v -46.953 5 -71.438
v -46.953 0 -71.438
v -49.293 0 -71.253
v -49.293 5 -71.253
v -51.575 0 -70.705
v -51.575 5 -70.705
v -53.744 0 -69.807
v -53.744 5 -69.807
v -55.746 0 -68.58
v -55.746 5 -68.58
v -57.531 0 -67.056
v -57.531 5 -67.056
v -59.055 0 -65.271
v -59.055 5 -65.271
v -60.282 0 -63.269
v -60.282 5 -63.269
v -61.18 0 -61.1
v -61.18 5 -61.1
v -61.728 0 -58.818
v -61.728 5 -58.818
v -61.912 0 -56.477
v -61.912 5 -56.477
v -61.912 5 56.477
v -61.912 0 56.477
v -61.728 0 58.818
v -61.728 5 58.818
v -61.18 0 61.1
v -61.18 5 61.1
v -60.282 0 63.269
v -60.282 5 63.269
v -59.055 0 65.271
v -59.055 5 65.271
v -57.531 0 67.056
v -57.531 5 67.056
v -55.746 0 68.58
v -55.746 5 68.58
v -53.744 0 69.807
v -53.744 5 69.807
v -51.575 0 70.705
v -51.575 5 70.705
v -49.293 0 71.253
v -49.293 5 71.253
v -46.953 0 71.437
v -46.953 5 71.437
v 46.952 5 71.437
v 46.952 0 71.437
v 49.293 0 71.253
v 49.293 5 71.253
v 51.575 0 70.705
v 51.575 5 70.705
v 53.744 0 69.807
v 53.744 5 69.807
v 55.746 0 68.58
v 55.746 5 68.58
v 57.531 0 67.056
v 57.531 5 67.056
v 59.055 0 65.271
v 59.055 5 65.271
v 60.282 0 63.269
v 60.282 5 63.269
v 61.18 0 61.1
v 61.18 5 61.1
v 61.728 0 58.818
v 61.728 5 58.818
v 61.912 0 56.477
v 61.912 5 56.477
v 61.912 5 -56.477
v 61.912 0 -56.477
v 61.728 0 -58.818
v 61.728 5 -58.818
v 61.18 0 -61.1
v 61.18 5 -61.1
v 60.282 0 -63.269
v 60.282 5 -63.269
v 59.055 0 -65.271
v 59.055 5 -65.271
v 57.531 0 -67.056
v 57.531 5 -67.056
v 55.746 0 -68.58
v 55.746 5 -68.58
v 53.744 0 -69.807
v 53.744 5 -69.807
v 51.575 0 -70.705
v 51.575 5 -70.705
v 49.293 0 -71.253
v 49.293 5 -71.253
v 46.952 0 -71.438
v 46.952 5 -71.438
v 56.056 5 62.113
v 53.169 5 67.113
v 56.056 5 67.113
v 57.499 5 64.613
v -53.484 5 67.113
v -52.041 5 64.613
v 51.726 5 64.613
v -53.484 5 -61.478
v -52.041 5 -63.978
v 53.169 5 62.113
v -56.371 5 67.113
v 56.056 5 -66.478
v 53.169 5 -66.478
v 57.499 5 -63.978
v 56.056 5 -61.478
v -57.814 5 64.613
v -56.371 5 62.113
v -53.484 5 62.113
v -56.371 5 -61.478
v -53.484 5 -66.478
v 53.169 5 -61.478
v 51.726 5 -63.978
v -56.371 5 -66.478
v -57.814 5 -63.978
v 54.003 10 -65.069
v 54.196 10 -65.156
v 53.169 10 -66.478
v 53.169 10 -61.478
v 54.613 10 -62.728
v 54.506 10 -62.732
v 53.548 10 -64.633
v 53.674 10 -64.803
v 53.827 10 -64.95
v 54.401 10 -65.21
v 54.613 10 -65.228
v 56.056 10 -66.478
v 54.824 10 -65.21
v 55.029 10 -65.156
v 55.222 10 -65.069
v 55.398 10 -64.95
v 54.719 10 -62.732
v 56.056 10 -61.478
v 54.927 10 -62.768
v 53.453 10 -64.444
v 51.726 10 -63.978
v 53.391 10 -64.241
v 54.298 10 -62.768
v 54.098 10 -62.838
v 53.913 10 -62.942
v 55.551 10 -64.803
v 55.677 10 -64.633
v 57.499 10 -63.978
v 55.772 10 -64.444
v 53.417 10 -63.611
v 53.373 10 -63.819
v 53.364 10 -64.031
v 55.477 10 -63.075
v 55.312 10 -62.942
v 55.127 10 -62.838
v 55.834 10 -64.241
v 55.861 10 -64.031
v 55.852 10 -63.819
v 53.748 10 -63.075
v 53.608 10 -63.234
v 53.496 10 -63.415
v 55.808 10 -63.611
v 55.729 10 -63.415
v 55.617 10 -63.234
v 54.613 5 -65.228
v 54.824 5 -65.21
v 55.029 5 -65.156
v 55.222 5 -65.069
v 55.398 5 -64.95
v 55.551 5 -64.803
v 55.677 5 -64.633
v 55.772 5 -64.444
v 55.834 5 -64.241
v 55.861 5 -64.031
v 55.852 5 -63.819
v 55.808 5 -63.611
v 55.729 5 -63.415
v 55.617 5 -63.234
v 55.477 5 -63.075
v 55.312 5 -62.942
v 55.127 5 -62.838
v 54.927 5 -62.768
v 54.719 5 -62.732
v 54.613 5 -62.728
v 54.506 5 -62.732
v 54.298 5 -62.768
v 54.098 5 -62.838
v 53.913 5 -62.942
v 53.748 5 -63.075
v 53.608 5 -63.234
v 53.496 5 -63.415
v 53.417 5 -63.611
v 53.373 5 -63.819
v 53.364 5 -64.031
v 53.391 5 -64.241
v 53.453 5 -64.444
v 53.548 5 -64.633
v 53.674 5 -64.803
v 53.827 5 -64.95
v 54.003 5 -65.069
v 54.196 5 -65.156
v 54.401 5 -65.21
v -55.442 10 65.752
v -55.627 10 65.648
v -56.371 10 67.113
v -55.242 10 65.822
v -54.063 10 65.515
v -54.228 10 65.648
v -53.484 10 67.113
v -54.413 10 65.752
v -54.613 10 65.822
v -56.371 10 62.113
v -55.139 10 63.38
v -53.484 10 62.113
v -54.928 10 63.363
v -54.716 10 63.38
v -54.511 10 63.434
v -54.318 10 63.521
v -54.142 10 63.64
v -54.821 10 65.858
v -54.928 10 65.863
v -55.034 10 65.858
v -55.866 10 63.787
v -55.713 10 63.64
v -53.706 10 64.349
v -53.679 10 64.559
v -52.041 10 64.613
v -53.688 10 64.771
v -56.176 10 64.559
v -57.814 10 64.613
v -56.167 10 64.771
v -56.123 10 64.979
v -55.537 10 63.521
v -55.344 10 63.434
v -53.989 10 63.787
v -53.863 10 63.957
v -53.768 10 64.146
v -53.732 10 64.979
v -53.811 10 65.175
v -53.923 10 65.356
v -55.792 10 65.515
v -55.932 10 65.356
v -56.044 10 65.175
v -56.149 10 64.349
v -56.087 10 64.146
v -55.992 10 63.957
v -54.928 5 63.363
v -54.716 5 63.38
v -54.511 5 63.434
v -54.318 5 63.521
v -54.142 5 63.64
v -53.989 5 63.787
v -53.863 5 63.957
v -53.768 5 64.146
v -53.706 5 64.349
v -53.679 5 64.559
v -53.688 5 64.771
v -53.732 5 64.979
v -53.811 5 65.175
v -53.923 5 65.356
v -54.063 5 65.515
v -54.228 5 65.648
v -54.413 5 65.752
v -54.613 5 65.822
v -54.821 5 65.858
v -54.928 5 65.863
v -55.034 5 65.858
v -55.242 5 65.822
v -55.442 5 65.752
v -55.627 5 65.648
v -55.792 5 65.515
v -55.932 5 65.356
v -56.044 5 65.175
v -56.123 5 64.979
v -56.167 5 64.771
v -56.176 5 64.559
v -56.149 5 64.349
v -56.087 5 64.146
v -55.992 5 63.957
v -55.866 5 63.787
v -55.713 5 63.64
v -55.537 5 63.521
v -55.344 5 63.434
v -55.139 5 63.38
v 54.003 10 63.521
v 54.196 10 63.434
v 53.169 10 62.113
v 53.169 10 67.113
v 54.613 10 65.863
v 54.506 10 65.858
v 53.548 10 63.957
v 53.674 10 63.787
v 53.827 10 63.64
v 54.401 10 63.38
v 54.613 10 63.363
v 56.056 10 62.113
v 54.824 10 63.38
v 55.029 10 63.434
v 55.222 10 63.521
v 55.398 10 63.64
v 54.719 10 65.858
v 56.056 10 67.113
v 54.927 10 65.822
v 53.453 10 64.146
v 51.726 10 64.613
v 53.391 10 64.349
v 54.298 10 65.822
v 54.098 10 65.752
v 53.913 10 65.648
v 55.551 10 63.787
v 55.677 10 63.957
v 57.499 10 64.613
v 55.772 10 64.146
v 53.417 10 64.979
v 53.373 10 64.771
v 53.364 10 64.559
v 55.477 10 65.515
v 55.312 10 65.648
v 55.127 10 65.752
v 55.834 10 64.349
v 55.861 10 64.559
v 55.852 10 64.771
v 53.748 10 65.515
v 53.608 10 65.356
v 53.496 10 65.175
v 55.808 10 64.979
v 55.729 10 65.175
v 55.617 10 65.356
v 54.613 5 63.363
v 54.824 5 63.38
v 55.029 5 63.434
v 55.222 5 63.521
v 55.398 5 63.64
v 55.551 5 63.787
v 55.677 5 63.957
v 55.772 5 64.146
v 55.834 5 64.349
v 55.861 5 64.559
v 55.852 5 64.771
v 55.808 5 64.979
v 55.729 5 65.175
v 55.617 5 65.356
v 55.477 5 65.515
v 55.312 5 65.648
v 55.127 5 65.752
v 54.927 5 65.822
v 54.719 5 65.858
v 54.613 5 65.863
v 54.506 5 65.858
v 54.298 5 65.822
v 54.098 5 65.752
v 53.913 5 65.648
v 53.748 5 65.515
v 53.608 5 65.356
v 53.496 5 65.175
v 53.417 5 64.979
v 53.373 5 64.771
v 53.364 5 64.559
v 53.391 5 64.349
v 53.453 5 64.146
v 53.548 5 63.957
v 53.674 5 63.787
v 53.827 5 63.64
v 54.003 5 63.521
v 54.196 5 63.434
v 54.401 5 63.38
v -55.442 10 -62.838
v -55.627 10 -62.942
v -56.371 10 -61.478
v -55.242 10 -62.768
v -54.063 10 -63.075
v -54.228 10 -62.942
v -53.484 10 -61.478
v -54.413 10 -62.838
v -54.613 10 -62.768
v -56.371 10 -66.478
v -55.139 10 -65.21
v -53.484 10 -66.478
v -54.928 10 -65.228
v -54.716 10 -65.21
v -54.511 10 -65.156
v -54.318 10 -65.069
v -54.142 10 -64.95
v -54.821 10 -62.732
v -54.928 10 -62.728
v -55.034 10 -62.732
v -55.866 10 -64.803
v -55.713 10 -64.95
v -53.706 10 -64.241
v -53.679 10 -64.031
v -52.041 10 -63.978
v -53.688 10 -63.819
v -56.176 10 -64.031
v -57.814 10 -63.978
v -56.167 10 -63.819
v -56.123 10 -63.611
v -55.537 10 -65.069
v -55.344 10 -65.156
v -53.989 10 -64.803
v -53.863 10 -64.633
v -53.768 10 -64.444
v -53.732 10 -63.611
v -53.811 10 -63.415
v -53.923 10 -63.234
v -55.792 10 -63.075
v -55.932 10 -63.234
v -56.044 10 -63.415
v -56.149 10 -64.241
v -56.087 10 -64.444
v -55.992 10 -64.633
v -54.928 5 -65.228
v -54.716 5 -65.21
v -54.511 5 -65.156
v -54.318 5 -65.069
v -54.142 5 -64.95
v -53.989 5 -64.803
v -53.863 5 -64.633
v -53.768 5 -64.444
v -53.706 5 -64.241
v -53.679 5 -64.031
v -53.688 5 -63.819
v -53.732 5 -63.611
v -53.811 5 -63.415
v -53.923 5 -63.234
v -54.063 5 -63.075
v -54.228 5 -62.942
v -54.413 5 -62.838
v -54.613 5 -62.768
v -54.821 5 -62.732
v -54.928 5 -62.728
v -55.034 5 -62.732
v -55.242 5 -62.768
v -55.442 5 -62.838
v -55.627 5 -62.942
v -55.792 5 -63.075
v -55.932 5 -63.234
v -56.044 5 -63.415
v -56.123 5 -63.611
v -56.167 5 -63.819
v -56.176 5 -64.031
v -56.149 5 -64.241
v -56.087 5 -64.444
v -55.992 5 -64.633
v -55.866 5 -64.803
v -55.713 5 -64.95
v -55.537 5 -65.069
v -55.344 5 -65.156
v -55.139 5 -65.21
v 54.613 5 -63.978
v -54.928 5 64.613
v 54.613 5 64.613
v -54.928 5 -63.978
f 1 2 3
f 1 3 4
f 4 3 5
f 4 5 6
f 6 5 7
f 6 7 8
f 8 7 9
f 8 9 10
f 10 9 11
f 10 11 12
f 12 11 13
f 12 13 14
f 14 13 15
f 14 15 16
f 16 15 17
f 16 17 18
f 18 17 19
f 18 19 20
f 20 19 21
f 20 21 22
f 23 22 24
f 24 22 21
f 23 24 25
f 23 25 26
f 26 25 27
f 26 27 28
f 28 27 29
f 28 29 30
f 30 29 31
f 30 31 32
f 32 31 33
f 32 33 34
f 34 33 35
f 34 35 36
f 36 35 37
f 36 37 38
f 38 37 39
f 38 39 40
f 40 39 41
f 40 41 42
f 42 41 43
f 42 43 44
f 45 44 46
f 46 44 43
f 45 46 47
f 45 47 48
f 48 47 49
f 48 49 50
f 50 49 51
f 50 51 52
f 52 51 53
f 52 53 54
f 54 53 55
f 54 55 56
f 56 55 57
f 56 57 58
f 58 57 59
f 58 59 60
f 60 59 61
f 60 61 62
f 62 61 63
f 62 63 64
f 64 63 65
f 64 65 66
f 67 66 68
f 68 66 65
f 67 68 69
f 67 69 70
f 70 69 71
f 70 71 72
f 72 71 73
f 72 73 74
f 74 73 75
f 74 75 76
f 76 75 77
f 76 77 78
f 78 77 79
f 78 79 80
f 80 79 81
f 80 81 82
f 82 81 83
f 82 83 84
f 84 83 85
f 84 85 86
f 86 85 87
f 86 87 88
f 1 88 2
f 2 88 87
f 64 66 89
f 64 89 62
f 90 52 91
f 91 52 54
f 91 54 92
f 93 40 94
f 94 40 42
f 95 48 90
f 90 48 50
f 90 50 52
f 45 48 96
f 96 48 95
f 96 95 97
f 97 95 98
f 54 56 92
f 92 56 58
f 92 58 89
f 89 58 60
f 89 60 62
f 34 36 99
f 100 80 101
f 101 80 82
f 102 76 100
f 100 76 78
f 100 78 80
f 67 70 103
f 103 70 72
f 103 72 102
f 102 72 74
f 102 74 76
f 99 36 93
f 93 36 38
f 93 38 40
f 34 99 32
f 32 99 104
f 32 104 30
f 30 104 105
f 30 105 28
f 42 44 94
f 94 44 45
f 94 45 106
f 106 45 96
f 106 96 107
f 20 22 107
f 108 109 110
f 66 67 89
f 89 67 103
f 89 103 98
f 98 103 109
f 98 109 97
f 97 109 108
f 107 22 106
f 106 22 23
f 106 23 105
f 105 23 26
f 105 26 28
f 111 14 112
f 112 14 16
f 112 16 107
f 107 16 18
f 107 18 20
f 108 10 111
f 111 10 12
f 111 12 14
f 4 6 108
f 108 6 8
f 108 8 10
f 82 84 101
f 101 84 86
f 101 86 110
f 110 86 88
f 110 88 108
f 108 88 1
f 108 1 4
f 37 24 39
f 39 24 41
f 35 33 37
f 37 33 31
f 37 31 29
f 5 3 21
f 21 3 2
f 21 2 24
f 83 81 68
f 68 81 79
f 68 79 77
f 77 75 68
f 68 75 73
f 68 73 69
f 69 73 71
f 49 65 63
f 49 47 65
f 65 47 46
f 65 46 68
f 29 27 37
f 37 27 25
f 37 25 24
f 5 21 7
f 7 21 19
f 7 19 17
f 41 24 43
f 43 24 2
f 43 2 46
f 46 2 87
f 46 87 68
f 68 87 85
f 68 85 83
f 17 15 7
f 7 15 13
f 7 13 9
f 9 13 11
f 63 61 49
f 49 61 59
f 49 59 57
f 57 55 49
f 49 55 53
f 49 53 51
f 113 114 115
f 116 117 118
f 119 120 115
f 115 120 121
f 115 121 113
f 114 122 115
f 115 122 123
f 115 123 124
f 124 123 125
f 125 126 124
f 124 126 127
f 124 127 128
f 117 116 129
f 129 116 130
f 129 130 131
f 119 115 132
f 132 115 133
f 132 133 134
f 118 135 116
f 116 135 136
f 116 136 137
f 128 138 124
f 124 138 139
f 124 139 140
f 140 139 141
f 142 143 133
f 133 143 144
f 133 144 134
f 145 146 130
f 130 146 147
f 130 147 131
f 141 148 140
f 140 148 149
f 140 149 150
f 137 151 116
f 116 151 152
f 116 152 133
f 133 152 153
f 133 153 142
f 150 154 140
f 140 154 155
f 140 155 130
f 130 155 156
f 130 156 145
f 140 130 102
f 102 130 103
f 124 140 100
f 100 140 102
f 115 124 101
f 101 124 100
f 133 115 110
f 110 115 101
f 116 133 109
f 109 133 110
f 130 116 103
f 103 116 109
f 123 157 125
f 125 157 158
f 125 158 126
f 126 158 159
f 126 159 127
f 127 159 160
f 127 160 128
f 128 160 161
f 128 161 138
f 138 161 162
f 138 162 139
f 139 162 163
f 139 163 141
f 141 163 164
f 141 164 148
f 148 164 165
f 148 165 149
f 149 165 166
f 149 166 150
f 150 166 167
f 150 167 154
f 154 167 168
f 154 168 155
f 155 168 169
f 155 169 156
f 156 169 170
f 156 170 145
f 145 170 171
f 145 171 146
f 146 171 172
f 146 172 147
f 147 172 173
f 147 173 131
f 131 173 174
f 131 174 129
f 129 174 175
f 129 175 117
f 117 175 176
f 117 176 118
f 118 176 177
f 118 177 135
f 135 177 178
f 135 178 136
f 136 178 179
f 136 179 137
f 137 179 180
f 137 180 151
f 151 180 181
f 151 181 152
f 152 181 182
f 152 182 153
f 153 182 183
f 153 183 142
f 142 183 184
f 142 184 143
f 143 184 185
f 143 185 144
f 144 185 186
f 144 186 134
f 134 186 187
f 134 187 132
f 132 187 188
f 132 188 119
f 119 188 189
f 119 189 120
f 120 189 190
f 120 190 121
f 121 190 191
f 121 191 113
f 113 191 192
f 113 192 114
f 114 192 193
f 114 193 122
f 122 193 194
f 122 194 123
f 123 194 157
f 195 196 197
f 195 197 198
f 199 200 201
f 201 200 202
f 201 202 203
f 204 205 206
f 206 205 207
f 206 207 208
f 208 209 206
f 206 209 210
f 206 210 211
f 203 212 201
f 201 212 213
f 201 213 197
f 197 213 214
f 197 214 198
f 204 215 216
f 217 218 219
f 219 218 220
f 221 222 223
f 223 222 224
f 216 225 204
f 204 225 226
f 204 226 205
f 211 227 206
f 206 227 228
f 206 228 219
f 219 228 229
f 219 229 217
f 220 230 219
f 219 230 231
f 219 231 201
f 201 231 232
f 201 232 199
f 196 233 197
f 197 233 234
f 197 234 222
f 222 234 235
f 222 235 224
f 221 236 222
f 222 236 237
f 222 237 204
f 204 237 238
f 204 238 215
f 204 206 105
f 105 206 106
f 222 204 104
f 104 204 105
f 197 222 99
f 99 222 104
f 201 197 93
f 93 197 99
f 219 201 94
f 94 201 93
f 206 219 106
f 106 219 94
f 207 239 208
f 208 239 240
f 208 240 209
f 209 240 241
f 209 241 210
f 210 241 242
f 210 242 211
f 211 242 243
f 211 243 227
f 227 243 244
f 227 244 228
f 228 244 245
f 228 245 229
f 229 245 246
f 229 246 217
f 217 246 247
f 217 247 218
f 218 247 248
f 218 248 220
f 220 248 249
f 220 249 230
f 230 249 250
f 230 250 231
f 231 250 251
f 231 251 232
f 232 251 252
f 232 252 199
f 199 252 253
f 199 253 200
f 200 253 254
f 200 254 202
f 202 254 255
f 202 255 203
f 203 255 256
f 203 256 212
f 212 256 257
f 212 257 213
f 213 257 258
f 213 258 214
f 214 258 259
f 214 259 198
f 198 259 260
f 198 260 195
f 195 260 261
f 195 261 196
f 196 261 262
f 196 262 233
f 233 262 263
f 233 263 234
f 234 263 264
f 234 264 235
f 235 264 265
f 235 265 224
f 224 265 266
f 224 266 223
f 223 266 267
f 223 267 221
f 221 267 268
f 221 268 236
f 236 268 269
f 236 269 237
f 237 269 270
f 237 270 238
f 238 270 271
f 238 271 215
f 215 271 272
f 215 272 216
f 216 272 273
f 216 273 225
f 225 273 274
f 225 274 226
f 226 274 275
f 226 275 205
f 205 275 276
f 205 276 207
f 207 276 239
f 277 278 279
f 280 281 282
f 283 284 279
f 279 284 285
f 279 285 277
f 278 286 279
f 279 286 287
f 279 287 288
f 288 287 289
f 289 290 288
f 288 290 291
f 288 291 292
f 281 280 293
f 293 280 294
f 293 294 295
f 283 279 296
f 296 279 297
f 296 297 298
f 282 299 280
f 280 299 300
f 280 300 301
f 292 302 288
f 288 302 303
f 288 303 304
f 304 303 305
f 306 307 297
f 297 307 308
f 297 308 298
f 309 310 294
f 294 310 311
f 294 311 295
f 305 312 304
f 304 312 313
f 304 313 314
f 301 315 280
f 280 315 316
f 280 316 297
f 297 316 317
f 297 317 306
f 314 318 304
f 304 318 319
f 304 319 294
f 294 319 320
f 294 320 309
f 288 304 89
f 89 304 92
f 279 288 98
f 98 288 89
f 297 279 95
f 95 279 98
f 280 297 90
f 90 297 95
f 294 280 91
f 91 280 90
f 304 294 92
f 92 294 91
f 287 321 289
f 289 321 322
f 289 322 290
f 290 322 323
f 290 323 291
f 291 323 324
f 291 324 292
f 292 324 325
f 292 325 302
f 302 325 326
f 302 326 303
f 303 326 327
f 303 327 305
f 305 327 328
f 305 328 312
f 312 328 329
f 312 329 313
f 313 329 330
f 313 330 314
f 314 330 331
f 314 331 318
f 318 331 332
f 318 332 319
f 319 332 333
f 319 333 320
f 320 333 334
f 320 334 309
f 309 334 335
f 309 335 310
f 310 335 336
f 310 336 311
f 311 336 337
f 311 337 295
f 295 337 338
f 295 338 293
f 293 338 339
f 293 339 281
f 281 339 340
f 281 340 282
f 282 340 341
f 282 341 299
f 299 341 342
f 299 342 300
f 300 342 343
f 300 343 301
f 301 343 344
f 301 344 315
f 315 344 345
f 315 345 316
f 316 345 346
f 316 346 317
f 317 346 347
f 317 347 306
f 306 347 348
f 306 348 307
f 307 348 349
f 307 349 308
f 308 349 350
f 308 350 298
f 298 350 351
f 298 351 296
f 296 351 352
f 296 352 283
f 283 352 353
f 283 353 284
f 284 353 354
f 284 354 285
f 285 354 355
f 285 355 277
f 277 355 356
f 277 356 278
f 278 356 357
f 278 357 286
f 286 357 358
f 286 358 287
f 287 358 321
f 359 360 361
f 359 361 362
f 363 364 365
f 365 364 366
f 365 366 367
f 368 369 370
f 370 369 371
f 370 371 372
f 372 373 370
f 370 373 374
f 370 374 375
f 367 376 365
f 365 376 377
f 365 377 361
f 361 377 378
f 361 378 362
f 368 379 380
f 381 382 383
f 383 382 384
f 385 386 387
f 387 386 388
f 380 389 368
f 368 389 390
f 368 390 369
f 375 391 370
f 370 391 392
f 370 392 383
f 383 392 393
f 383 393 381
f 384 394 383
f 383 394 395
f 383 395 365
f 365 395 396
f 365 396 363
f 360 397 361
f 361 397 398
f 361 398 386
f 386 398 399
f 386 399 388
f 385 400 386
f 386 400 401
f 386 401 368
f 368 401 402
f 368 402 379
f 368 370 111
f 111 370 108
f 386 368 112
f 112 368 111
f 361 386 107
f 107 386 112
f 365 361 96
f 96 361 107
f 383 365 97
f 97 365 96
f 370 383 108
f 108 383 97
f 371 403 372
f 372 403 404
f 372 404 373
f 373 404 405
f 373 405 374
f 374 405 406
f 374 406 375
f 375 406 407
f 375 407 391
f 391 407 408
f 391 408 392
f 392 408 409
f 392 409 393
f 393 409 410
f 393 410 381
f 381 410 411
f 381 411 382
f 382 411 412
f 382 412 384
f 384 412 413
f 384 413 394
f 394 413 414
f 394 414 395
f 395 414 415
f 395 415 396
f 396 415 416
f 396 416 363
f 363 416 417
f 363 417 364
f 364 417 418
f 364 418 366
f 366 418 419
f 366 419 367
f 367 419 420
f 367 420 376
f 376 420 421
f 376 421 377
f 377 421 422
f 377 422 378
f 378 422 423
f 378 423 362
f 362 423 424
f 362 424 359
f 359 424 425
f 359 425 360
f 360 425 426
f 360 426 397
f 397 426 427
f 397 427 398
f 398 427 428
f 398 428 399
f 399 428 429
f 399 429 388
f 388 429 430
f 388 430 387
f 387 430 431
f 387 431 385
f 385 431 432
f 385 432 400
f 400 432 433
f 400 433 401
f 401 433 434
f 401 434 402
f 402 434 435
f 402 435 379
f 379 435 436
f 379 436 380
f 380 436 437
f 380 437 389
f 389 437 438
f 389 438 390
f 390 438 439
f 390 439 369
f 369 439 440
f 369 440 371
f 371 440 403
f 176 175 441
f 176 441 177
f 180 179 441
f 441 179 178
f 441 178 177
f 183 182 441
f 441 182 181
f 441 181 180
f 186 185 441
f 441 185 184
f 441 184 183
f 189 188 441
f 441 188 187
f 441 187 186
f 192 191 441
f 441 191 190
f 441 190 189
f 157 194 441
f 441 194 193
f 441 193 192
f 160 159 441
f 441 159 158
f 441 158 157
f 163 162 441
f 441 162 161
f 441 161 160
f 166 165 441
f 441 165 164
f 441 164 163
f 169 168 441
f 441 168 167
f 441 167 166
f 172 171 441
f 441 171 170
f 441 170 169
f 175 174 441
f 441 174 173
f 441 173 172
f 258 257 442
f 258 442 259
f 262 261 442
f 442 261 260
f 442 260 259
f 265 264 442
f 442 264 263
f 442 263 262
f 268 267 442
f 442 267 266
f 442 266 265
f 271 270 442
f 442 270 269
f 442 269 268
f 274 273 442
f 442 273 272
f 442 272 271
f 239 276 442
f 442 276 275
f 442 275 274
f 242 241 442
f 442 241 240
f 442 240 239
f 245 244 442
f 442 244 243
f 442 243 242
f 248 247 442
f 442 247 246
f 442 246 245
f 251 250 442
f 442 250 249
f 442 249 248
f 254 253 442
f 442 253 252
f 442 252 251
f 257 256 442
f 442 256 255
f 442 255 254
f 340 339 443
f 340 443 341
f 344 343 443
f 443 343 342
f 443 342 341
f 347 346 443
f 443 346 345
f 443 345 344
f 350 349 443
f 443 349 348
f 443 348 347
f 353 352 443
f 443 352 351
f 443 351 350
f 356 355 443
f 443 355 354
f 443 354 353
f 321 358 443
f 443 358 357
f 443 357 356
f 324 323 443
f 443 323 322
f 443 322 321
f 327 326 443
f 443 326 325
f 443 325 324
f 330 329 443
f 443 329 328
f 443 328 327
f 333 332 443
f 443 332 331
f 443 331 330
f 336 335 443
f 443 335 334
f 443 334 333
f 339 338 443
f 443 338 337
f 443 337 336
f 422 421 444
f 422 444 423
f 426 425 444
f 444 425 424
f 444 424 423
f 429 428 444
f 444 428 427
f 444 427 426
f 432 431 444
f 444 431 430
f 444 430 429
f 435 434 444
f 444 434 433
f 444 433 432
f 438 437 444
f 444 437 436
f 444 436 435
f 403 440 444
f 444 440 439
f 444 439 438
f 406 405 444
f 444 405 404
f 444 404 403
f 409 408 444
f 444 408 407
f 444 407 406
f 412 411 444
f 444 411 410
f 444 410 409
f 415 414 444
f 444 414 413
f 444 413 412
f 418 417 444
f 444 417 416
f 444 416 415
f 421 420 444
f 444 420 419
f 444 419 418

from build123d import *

# Parameters (mm, degrees)
FLOOR_2_DEPTH       = 5
SKETCH2_R           = 1.25
BOSS_EXTRUDE1_DEPTH = 5


with BuildPart() as part:
    # Sketch1 → Floor 2 (new body)
    with BuildSketch(Plane(origin=(0, 0, 0), x_dir=(1, 0, 0), z_dir=(0, 1, 0))):
        with BuildLine():
            Line((-46.9525, -71.4375), (46.9525, -71.4375))
            ThreePointArc((46.9525, -71.4375), (57.530817447, -67.055817447), (61.9125, -56.4775))
            Line((61.9125, -56.4775), (61.9125, 56.4775))
            ThreePointArc((61.9125, 56.4775), (57.530817447, 67.055817447), (46.9525, 71.4375))
            Line((46.9525, 71.4375), (-46.9525, 71.4375))
            ThreePointArc((-46.9525, 71.4375), (-57.530817447, 67.055817447), (-61.9125, 56.4775))
            Line((-61.9125, 56.4775), (-61.9125, -56.4775))
            ThreePointArc((-61.9125, -56.4775), (-57.530817447, -67.055817447), (-46.9525, -71.4375))
        make_face()
    extrude(amount=FLOOR_2_DEPTH)

    # Sketch2 → Boss-Extrude1 (add)
    # profile 1 of 4: a face of its own
    with BuildSketch(Plane(origin=(0, 5, 0), x_dir=(1, 0, 0), z_dir=(0, 1, 0))):
        Polygon((-56.370875673, -62.1125), (-57.814251346, -64.6125), (-56.370875673, -67.1125), (-53.484124327, -67.1125), (-52.040748654, -64.6125), (-53.484124327, -62.1125), align=None)
        with Locations(Location((-54.9275, -64.6125, 0), (0, 0, 270))):
            Circle(SKETCH2_R, mode=Mode.SUBTRACT)
    # profile 2 of 4: a face of its own
    with BuildSketch(Plane(origin=(0, 5, 0), x_dir=(1, 0, 0), z_dir=(0, 1, 0))):
        Polygon((56.055875673, -62.1125), (53.169124327, -62.1125), (51.725748654, -64.6125), (53.169124327, -67.1125), (56.055875673, -67.1125), (57.499251346, -64.6125), align=None)
        with Locations(Location((54.6125, -64.6125, 0), (0, 0, 270))):
            Circle(SKETCH2_R, mode=Mode.SUBTRACT)
    # profile 3 of 4: a face of its own
    with BuildSketch(Plane(origin=(0, 5, 0), x_dir=(1, 0, 0), z_dir=(0, 1, 0))):
        Polygon((-56.370875673, 66.4775), (-57.814251346, 63.9775), (-56.370875673, 61.4775), (-53.484124327, 61.4775), (-52.040748654, 63.9775), (-53.484124327, 66.4775), align=None)
        with Locations(Location((-54.9275, 63.9775, 0), (0, 0, 270))):
            Circle(SKETCH2_R, mode=Mode.SUBTRACT)
    # profile 4 of 4: a face of its own
    with BuildSketch(Plane(origin=(0, 5, 0), x_dir=(1, 0, 0), z_dir=(0, 1, 0))):
        Polygon((57.499251346, 63.9775), (56.055875673, 66.4775), (53.169124327, 66.4775), (51.725748654, 63.9775), (53.169124327, 61.4775), (56.055875673, 61.4775), align=None)
        with Locations(Location((54.6125, 63.9775, 0), (0, 0, 270))):
            Circle(SKETCH2_R, mode=Mode.SUBTRACT)
    extrude(amount=BOSS_EXTRUDE1_DEPTH)


solid = part.part
